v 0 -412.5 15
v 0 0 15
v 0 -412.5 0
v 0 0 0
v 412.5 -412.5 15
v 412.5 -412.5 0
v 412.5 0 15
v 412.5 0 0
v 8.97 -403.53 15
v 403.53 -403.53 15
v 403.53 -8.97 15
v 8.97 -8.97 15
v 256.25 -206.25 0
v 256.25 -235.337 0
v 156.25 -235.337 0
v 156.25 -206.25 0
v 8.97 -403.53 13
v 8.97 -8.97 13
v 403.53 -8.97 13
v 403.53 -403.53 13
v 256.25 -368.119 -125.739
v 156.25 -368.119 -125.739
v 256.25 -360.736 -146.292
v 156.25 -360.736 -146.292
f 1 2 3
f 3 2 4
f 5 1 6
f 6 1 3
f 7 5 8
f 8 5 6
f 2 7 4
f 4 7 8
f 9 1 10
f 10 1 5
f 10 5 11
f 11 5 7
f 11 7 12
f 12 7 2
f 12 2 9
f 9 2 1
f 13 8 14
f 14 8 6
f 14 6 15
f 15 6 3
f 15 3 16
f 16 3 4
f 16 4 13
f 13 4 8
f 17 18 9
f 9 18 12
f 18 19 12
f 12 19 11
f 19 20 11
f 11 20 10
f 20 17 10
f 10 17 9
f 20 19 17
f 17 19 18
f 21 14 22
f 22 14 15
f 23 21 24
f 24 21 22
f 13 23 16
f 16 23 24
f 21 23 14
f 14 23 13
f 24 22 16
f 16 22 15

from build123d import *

# Parameters (mm, degrees)
SKIZZE1_W                       = 412.5
SKIZZE1_H                       = 412.5
AUFSATZ_LINEAR_AUSTRAGEN1_DEPTH = 15
SKIZZE2_W                       = 394.56
SKIZZE2_H                       = 394.56
SCHNITT_LINEAR_AUSTRAGEN1_DEPTH = 2
AUFSATZ_LINEAR_START            = -256.25
AUFSATZ_LINEAR_AUSTRAGEN2_DEPTH = 100


with BuildPart() as part:
    # Skizze1 → Aufsatz-Linear austragen1 (new body)
    with BuildSketch(Plane.XY):
        with Locations((206.25, -206.25)):
            Rectangle(SKIZZE1_W, SKIZZE1_H)
    extrude(amount=AUFSATZ_LINEAR_AUSTRAGEN1_DEPTH)

    # Skizze2 → Schnitt-Linear austragen1 (cut)
    with BuildSketch(Plane.XY.offset(15)):
        with Locations((206.25, -206.25)):
            Rectangle(SKIZZE2_W, SKIZZE2_H)
    extrude(amount=-SCHNITT_LINEAR_AUSTRAGEN1_DEPTH, mode=Mode.SUBTRACT)

    # Skizze3 → Aufsatz-Linear austragen2 (add)
    with BuildSketch(Plane(origin=(412.5, 0, 0), x_dir=(0, 0, -1), z_dir=(1, 0, 0)).offset(AUFSATZ_LINEAR_START)):
        Polygon((0, -206.25), (146.291749205, -360.735735275), (125.739095453, -368.119079257), (0, -235.337177889), align=None)
    extrude(amount=AUFSATZ_LINEAR_AUSTRAGEN2_DEPTH)


solid = part.part
